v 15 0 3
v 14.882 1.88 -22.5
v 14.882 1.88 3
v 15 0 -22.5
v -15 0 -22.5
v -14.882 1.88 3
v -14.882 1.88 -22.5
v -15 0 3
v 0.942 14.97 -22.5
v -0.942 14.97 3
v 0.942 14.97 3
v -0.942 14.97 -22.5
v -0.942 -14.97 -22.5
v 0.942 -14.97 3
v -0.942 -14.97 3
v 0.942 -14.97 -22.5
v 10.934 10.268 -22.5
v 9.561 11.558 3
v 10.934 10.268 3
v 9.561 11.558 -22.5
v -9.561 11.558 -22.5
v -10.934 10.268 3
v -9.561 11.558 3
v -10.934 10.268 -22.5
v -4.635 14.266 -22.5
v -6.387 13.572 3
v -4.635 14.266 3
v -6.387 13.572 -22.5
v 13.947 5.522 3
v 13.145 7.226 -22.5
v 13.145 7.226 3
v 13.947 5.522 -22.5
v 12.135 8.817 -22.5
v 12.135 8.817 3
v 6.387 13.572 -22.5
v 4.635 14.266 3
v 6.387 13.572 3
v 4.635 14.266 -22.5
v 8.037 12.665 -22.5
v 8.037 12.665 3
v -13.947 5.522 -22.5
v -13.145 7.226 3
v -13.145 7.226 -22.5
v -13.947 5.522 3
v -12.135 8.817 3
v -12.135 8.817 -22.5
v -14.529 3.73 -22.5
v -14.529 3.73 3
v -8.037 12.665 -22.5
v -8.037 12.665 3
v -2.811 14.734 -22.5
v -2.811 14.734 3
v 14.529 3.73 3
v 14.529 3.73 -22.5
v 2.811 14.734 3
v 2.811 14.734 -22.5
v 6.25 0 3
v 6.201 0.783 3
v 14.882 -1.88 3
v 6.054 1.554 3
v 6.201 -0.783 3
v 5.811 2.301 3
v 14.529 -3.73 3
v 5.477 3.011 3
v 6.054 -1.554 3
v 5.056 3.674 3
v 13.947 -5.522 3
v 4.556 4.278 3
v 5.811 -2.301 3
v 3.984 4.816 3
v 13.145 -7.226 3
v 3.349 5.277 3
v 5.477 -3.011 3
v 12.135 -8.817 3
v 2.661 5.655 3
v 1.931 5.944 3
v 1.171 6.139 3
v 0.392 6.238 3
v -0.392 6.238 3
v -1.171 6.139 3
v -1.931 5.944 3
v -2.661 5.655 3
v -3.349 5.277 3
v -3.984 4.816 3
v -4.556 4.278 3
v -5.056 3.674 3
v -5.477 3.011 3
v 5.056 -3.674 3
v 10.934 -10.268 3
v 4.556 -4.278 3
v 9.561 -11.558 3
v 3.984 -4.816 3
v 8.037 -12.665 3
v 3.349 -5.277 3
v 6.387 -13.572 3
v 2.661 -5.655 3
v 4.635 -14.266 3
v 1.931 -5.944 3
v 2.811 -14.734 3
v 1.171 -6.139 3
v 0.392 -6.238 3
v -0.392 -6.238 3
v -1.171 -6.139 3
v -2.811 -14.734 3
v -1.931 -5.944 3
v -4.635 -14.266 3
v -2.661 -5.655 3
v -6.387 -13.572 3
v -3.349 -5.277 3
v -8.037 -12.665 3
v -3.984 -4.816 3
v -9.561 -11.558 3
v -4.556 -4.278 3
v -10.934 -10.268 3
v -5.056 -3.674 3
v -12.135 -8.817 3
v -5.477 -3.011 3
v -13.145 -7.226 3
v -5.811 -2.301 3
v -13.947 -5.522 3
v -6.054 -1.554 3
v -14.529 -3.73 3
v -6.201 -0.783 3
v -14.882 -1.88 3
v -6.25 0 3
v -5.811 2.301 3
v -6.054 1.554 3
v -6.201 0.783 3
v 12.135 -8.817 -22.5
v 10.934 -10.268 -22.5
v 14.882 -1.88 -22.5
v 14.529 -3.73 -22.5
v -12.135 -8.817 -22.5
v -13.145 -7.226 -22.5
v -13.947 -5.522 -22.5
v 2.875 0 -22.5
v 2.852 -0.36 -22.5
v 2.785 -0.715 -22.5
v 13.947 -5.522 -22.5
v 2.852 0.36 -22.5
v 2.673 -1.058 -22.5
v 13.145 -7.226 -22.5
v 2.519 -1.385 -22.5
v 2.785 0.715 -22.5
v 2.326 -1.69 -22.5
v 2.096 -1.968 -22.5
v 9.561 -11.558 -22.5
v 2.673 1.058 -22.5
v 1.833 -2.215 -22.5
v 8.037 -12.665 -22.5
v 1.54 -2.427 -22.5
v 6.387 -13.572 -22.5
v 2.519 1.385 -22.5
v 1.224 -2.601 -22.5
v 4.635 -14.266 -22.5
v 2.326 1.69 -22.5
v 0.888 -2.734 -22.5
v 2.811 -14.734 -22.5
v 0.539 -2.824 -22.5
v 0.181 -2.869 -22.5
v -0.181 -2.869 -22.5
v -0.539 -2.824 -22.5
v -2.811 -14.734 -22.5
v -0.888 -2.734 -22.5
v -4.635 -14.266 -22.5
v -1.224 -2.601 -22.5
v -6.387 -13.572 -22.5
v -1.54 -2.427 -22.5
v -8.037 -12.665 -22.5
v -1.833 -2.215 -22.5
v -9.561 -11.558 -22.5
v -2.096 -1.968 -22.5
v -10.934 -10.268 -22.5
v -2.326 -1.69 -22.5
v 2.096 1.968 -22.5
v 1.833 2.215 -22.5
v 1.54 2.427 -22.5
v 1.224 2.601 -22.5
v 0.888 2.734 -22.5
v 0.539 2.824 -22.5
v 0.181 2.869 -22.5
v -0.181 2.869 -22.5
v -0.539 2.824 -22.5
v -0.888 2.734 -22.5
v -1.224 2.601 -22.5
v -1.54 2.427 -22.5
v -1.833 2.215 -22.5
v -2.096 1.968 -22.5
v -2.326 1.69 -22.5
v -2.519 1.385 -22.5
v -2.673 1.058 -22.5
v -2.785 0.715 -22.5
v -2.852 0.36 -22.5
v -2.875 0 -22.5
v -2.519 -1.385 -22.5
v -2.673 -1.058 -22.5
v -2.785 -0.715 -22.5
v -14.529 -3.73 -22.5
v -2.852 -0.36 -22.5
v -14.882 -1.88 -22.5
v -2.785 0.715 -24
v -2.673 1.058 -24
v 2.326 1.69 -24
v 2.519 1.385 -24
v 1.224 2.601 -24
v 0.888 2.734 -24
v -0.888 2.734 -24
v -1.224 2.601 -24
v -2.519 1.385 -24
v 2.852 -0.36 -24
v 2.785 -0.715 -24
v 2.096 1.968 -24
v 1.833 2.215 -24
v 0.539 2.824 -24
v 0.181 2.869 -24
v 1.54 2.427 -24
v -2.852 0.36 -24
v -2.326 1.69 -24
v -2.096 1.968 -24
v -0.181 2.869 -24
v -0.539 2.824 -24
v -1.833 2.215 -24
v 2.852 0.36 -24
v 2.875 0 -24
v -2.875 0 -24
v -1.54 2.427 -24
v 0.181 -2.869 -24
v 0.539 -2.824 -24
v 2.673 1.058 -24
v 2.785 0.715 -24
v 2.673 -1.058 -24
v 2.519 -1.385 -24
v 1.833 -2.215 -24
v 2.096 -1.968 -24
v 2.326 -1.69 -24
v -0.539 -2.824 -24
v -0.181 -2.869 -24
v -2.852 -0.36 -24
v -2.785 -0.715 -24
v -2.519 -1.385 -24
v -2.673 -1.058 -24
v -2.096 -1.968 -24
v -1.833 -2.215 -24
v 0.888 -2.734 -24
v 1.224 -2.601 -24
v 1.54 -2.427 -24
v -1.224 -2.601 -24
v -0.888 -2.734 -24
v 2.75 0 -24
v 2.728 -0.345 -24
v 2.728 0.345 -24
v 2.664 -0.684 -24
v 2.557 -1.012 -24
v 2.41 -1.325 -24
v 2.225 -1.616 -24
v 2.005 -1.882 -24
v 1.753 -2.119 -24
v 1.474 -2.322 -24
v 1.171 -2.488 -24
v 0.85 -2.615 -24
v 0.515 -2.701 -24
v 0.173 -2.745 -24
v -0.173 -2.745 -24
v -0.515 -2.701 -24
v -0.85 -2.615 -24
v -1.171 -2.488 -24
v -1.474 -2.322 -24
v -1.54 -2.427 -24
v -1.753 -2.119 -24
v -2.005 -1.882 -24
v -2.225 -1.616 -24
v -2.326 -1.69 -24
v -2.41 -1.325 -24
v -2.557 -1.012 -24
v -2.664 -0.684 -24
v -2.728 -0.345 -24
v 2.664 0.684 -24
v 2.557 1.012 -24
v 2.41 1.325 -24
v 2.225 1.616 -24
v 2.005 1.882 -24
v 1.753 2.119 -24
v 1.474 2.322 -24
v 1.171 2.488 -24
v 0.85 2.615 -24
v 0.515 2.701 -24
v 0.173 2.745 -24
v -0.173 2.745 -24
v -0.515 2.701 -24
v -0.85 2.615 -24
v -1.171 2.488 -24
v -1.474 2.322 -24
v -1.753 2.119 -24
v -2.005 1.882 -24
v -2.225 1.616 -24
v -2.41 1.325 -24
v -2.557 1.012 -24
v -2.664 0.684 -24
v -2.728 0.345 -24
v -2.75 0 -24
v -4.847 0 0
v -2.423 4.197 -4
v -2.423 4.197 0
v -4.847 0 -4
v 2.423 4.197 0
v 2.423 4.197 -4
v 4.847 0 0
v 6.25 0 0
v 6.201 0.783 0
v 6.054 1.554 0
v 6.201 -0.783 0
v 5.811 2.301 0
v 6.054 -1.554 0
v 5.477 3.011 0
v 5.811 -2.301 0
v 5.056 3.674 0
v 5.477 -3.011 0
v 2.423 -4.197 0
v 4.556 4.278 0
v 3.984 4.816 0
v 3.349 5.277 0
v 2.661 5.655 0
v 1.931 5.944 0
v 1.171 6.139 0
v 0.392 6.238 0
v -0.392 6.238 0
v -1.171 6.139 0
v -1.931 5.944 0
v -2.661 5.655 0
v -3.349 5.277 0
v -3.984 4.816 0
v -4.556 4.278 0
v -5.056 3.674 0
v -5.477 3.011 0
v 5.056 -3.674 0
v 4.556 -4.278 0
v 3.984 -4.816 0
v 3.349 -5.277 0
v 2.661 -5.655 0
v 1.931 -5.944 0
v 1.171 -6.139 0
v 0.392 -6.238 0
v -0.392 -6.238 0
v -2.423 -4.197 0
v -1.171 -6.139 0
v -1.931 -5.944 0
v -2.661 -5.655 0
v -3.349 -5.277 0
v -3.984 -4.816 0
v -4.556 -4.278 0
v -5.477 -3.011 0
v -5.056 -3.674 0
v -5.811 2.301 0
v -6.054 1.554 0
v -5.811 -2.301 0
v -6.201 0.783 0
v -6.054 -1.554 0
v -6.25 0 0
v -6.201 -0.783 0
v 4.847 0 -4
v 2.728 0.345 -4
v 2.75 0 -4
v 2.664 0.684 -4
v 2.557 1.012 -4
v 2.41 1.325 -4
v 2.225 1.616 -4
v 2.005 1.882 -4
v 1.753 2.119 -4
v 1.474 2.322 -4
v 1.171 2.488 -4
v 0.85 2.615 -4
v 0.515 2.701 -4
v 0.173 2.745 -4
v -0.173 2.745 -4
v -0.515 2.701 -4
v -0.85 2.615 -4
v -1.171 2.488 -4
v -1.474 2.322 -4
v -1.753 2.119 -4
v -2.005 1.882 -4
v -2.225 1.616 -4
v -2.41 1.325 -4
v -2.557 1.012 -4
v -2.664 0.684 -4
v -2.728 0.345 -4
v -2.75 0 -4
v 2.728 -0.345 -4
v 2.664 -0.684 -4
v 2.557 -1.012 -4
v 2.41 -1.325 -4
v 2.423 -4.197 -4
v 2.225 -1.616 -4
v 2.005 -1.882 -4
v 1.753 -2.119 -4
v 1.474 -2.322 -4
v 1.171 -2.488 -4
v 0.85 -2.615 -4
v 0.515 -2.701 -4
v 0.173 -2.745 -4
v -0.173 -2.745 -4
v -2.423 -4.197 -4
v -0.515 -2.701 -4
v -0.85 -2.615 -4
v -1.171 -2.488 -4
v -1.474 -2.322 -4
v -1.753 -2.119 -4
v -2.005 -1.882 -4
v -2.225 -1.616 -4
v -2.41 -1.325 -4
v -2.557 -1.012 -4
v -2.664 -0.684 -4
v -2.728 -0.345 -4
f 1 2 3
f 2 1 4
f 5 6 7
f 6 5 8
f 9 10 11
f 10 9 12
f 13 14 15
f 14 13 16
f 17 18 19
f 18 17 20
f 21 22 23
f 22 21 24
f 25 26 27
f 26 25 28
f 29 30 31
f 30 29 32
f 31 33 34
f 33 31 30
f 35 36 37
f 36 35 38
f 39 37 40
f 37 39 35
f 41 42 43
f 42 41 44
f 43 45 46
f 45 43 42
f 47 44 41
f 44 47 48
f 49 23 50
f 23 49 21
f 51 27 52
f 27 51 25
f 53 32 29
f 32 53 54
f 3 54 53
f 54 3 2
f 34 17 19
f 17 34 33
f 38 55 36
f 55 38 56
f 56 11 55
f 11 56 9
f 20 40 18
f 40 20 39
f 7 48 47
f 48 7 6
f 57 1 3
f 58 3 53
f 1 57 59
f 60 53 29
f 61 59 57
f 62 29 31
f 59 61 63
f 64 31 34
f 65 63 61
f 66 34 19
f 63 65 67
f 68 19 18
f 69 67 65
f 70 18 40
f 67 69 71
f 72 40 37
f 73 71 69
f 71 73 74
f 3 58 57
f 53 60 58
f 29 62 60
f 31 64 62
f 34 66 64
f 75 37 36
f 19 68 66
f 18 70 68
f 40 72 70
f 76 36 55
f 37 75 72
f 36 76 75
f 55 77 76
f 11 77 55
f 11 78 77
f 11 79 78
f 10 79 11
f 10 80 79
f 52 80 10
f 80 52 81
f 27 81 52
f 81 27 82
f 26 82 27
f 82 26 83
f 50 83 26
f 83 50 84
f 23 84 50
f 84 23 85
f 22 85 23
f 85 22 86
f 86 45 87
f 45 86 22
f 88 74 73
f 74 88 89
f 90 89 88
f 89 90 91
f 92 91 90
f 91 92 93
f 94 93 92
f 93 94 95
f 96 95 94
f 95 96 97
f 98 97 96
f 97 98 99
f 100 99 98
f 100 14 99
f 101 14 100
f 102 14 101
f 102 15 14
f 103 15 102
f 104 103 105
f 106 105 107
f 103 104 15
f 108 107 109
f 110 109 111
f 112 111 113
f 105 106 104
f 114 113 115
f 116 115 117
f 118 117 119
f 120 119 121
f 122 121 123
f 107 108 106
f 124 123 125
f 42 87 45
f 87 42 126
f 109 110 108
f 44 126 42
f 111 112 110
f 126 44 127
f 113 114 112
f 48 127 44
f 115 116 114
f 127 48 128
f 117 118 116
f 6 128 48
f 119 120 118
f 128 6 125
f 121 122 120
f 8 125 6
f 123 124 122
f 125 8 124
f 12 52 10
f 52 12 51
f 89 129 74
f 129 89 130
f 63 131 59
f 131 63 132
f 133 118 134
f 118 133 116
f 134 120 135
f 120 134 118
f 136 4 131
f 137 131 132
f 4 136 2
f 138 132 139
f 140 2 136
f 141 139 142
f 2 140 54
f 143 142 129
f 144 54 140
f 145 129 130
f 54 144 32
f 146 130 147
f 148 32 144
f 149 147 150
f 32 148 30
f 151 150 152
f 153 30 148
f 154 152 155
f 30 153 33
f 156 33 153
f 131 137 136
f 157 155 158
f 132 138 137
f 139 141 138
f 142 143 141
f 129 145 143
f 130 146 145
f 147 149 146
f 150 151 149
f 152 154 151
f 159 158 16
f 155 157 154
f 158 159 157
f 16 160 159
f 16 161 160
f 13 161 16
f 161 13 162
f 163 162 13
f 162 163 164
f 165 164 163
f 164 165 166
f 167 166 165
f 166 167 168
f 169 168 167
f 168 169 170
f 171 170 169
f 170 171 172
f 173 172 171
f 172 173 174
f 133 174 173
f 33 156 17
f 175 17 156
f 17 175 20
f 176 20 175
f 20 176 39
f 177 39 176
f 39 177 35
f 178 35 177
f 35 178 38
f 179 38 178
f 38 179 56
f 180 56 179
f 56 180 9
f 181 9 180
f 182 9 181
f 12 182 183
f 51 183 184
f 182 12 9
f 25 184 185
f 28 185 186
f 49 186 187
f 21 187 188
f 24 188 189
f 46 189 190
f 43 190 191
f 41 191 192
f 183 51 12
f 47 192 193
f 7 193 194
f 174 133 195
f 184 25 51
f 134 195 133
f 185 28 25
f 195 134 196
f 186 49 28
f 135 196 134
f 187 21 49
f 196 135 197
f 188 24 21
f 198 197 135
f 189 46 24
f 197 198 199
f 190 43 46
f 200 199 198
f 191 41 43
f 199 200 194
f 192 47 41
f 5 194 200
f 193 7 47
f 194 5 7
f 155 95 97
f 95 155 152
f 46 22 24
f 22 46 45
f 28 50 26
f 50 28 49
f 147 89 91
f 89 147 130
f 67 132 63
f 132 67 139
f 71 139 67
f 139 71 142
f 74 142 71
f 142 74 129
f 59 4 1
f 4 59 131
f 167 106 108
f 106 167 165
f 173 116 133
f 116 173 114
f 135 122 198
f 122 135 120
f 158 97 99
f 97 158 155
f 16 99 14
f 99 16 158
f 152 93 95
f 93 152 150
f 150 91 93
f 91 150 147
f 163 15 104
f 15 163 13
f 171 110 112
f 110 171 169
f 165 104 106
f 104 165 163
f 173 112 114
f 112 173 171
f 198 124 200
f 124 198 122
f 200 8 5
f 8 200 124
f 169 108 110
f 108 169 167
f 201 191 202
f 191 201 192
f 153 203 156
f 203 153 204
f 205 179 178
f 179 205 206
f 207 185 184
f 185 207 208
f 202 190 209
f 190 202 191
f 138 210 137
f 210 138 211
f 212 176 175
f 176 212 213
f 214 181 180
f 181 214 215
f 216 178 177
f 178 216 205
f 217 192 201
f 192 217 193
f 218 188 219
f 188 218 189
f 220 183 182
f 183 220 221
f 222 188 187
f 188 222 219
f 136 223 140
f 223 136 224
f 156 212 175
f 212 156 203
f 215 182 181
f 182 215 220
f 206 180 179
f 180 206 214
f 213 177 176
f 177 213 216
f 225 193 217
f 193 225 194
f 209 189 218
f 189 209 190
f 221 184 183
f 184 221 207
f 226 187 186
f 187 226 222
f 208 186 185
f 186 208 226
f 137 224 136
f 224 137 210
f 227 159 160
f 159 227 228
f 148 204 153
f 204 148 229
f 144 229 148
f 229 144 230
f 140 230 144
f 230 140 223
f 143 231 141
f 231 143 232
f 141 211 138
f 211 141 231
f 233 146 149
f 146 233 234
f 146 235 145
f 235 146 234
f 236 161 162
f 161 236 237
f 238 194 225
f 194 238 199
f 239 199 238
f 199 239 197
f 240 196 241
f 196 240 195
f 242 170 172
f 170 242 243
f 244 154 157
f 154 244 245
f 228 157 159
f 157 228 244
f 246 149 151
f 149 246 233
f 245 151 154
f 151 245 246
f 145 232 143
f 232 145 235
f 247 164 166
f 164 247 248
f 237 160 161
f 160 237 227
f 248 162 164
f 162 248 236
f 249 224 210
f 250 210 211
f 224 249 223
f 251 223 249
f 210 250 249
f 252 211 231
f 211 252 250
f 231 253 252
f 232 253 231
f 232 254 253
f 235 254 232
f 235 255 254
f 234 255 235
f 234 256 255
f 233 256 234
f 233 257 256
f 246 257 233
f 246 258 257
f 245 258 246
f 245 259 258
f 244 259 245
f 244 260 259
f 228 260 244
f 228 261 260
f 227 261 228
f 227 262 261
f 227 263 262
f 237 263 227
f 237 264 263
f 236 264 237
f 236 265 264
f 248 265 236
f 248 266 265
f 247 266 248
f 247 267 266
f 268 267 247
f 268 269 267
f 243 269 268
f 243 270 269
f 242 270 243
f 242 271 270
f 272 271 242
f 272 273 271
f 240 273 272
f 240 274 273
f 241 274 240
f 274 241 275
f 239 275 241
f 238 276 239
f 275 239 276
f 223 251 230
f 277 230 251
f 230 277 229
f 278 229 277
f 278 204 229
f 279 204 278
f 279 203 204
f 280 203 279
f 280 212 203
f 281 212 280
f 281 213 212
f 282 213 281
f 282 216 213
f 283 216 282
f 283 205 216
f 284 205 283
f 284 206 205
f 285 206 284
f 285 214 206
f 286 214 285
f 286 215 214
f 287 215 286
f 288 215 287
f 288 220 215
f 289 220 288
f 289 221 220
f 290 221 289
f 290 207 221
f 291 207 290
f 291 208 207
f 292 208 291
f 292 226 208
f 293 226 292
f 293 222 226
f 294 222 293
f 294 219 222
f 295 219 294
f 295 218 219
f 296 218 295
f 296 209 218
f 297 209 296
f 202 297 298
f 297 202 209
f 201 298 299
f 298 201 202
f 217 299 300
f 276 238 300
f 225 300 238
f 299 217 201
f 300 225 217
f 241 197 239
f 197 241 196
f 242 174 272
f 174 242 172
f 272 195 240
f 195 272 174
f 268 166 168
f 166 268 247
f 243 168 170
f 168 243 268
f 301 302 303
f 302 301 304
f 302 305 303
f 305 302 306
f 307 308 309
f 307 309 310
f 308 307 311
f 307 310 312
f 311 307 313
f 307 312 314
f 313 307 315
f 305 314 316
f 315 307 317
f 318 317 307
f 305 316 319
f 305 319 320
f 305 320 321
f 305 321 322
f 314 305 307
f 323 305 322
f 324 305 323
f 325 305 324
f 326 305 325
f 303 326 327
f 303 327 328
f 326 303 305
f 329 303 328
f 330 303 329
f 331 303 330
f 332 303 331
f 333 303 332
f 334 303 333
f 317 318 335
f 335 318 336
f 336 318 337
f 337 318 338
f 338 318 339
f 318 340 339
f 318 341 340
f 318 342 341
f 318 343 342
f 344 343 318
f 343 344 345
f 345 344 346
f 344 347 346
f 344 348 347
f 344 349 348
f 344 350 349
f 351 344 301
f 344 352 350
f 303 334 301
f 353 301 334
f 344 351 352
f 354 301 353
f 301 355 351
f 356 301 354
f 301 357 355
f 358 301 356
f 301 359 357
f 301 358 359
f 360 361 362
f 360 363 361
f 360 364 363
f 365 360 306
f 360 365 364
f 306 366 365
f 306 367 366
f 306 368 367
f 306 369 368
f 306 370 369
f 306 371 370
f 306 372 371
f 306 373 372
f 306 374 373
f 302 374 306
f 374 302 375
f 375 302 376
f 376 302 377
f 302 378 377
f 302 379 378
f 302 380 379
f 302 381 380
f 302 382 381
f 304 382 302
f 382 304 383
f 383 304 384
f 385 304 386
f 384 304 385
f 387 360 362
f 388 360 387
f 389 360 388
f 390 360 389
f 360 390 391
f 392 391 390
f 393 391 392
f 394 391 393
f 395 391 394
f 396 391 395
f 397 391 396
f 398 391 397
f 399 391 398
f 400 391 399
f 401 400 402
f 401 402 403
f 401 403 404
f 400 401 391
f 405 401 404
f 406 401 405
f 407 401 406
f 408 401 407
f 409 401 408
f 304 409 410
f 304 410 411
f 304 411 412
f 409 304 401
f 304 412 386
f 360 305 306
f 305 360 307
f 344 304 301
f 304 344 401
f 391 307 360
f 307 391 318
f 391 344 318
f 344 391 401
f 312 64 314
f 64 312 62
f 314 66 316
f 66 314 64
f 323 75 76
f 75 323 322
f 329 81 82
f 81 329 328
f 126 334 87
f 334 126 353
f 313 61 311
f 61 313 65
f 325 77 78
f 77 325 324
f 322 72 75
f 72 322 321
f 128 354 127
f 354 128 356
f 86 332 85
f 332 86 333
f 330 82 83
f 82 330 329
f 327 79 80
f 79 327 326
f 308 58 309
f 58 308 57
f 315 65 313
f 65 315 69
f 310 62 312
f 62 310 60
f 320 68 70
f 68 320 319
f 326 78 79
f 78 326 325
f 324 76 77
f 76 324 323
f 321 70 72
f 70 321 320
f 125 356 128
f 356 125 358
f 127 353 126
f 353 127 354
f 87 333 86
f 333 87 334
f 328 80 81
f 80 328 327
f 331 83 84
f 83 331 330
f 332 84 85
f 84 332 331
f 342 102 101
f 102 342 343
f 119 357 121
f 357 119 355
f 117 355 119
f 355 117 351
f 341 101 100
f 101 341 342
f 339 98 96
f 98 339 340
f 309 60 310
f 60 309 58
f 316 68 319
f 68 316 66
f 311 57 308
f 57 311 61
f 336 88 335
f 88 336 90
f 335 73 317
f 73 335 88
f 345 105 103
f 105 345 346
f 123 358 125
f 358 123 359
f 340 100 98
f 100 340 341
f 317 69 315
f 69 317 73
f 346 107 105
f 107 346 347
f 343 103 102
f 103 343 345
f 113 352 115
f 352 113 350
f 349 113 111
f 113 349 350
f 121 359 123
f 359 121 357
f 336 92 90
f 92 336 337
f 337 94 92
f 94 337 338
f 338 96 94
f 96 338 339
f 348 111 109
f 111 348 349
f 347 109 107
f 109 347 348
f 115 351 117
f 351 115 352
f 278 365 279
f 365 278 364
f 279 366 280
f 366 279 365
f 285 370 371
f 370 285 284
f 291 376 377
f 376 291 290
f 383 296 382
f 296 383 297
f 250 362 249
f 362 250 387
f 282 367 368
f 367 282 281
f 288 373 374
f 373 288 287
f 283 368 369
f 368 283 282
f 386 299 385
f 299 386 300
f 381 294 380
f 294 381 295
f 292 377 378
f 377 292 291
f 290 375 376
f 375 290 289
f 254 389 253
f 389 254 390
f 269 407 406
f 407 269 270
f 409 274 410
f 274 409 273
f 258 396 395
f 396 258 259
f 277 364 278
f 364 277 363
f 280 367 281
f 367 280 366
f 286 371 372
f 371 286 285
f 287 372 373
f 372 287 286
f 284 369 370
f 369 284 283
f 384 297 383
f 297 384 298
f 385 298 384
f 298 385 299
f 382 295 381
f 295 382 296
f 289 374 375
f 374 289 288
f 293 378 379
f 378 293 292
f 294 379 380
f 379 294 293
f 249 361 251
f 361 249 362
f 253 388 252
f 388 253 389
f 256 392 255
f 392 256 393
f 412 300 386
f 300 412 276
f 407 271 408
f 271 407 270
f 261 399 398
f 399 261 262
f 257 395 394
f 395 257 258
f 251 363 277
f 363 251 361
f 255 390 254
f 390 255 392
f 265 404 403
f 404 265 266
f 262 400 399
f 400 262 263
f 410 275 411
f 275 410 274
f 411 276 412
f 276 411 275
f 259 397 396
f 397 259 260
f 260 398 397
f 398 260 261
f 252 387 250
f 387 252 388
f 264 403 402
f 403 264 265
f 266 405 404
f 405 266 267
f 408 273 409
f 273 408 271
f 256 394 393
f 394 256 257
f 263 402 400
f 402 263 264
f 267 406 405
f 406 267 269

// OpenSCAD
$fn = 50;

difference() {
	union() {
		translate(v = [0, 0, -22.5]) {
			cylinder(h = 25.5, r = 15.0);
		}
		#translate(v = [0, 0, -24.0]) {
			cylinder(h = 24, r = 2.875);
		}
	}
	union() {
		translate(v = [0, 0, 0]) {
			rotate(a = [0, 0, 0]) {
				difference() {
					union() {
						translate(v = [0, 0, -4]) {
							linear_extrude(height = 4) {
								polygon(points = [[4.8468, 0.0], [2.4234000000000004, 4.197451927062417], [-2.423399999999999, 4.197451927062417], [-4.8468, 5.935618106107392e-16], [-2.423400000000002, -4.197451927062416], [2.423399999999997, -4.197451927062419]]);
							}
						}
					}
					union();
				}
			}
		}
		#cylinder(h = 3, r = 6.25);
		#translate(v = [0, 0, -100.0]) {
			cylinder(h = 200, r = 2.75);
		}
	}
}
